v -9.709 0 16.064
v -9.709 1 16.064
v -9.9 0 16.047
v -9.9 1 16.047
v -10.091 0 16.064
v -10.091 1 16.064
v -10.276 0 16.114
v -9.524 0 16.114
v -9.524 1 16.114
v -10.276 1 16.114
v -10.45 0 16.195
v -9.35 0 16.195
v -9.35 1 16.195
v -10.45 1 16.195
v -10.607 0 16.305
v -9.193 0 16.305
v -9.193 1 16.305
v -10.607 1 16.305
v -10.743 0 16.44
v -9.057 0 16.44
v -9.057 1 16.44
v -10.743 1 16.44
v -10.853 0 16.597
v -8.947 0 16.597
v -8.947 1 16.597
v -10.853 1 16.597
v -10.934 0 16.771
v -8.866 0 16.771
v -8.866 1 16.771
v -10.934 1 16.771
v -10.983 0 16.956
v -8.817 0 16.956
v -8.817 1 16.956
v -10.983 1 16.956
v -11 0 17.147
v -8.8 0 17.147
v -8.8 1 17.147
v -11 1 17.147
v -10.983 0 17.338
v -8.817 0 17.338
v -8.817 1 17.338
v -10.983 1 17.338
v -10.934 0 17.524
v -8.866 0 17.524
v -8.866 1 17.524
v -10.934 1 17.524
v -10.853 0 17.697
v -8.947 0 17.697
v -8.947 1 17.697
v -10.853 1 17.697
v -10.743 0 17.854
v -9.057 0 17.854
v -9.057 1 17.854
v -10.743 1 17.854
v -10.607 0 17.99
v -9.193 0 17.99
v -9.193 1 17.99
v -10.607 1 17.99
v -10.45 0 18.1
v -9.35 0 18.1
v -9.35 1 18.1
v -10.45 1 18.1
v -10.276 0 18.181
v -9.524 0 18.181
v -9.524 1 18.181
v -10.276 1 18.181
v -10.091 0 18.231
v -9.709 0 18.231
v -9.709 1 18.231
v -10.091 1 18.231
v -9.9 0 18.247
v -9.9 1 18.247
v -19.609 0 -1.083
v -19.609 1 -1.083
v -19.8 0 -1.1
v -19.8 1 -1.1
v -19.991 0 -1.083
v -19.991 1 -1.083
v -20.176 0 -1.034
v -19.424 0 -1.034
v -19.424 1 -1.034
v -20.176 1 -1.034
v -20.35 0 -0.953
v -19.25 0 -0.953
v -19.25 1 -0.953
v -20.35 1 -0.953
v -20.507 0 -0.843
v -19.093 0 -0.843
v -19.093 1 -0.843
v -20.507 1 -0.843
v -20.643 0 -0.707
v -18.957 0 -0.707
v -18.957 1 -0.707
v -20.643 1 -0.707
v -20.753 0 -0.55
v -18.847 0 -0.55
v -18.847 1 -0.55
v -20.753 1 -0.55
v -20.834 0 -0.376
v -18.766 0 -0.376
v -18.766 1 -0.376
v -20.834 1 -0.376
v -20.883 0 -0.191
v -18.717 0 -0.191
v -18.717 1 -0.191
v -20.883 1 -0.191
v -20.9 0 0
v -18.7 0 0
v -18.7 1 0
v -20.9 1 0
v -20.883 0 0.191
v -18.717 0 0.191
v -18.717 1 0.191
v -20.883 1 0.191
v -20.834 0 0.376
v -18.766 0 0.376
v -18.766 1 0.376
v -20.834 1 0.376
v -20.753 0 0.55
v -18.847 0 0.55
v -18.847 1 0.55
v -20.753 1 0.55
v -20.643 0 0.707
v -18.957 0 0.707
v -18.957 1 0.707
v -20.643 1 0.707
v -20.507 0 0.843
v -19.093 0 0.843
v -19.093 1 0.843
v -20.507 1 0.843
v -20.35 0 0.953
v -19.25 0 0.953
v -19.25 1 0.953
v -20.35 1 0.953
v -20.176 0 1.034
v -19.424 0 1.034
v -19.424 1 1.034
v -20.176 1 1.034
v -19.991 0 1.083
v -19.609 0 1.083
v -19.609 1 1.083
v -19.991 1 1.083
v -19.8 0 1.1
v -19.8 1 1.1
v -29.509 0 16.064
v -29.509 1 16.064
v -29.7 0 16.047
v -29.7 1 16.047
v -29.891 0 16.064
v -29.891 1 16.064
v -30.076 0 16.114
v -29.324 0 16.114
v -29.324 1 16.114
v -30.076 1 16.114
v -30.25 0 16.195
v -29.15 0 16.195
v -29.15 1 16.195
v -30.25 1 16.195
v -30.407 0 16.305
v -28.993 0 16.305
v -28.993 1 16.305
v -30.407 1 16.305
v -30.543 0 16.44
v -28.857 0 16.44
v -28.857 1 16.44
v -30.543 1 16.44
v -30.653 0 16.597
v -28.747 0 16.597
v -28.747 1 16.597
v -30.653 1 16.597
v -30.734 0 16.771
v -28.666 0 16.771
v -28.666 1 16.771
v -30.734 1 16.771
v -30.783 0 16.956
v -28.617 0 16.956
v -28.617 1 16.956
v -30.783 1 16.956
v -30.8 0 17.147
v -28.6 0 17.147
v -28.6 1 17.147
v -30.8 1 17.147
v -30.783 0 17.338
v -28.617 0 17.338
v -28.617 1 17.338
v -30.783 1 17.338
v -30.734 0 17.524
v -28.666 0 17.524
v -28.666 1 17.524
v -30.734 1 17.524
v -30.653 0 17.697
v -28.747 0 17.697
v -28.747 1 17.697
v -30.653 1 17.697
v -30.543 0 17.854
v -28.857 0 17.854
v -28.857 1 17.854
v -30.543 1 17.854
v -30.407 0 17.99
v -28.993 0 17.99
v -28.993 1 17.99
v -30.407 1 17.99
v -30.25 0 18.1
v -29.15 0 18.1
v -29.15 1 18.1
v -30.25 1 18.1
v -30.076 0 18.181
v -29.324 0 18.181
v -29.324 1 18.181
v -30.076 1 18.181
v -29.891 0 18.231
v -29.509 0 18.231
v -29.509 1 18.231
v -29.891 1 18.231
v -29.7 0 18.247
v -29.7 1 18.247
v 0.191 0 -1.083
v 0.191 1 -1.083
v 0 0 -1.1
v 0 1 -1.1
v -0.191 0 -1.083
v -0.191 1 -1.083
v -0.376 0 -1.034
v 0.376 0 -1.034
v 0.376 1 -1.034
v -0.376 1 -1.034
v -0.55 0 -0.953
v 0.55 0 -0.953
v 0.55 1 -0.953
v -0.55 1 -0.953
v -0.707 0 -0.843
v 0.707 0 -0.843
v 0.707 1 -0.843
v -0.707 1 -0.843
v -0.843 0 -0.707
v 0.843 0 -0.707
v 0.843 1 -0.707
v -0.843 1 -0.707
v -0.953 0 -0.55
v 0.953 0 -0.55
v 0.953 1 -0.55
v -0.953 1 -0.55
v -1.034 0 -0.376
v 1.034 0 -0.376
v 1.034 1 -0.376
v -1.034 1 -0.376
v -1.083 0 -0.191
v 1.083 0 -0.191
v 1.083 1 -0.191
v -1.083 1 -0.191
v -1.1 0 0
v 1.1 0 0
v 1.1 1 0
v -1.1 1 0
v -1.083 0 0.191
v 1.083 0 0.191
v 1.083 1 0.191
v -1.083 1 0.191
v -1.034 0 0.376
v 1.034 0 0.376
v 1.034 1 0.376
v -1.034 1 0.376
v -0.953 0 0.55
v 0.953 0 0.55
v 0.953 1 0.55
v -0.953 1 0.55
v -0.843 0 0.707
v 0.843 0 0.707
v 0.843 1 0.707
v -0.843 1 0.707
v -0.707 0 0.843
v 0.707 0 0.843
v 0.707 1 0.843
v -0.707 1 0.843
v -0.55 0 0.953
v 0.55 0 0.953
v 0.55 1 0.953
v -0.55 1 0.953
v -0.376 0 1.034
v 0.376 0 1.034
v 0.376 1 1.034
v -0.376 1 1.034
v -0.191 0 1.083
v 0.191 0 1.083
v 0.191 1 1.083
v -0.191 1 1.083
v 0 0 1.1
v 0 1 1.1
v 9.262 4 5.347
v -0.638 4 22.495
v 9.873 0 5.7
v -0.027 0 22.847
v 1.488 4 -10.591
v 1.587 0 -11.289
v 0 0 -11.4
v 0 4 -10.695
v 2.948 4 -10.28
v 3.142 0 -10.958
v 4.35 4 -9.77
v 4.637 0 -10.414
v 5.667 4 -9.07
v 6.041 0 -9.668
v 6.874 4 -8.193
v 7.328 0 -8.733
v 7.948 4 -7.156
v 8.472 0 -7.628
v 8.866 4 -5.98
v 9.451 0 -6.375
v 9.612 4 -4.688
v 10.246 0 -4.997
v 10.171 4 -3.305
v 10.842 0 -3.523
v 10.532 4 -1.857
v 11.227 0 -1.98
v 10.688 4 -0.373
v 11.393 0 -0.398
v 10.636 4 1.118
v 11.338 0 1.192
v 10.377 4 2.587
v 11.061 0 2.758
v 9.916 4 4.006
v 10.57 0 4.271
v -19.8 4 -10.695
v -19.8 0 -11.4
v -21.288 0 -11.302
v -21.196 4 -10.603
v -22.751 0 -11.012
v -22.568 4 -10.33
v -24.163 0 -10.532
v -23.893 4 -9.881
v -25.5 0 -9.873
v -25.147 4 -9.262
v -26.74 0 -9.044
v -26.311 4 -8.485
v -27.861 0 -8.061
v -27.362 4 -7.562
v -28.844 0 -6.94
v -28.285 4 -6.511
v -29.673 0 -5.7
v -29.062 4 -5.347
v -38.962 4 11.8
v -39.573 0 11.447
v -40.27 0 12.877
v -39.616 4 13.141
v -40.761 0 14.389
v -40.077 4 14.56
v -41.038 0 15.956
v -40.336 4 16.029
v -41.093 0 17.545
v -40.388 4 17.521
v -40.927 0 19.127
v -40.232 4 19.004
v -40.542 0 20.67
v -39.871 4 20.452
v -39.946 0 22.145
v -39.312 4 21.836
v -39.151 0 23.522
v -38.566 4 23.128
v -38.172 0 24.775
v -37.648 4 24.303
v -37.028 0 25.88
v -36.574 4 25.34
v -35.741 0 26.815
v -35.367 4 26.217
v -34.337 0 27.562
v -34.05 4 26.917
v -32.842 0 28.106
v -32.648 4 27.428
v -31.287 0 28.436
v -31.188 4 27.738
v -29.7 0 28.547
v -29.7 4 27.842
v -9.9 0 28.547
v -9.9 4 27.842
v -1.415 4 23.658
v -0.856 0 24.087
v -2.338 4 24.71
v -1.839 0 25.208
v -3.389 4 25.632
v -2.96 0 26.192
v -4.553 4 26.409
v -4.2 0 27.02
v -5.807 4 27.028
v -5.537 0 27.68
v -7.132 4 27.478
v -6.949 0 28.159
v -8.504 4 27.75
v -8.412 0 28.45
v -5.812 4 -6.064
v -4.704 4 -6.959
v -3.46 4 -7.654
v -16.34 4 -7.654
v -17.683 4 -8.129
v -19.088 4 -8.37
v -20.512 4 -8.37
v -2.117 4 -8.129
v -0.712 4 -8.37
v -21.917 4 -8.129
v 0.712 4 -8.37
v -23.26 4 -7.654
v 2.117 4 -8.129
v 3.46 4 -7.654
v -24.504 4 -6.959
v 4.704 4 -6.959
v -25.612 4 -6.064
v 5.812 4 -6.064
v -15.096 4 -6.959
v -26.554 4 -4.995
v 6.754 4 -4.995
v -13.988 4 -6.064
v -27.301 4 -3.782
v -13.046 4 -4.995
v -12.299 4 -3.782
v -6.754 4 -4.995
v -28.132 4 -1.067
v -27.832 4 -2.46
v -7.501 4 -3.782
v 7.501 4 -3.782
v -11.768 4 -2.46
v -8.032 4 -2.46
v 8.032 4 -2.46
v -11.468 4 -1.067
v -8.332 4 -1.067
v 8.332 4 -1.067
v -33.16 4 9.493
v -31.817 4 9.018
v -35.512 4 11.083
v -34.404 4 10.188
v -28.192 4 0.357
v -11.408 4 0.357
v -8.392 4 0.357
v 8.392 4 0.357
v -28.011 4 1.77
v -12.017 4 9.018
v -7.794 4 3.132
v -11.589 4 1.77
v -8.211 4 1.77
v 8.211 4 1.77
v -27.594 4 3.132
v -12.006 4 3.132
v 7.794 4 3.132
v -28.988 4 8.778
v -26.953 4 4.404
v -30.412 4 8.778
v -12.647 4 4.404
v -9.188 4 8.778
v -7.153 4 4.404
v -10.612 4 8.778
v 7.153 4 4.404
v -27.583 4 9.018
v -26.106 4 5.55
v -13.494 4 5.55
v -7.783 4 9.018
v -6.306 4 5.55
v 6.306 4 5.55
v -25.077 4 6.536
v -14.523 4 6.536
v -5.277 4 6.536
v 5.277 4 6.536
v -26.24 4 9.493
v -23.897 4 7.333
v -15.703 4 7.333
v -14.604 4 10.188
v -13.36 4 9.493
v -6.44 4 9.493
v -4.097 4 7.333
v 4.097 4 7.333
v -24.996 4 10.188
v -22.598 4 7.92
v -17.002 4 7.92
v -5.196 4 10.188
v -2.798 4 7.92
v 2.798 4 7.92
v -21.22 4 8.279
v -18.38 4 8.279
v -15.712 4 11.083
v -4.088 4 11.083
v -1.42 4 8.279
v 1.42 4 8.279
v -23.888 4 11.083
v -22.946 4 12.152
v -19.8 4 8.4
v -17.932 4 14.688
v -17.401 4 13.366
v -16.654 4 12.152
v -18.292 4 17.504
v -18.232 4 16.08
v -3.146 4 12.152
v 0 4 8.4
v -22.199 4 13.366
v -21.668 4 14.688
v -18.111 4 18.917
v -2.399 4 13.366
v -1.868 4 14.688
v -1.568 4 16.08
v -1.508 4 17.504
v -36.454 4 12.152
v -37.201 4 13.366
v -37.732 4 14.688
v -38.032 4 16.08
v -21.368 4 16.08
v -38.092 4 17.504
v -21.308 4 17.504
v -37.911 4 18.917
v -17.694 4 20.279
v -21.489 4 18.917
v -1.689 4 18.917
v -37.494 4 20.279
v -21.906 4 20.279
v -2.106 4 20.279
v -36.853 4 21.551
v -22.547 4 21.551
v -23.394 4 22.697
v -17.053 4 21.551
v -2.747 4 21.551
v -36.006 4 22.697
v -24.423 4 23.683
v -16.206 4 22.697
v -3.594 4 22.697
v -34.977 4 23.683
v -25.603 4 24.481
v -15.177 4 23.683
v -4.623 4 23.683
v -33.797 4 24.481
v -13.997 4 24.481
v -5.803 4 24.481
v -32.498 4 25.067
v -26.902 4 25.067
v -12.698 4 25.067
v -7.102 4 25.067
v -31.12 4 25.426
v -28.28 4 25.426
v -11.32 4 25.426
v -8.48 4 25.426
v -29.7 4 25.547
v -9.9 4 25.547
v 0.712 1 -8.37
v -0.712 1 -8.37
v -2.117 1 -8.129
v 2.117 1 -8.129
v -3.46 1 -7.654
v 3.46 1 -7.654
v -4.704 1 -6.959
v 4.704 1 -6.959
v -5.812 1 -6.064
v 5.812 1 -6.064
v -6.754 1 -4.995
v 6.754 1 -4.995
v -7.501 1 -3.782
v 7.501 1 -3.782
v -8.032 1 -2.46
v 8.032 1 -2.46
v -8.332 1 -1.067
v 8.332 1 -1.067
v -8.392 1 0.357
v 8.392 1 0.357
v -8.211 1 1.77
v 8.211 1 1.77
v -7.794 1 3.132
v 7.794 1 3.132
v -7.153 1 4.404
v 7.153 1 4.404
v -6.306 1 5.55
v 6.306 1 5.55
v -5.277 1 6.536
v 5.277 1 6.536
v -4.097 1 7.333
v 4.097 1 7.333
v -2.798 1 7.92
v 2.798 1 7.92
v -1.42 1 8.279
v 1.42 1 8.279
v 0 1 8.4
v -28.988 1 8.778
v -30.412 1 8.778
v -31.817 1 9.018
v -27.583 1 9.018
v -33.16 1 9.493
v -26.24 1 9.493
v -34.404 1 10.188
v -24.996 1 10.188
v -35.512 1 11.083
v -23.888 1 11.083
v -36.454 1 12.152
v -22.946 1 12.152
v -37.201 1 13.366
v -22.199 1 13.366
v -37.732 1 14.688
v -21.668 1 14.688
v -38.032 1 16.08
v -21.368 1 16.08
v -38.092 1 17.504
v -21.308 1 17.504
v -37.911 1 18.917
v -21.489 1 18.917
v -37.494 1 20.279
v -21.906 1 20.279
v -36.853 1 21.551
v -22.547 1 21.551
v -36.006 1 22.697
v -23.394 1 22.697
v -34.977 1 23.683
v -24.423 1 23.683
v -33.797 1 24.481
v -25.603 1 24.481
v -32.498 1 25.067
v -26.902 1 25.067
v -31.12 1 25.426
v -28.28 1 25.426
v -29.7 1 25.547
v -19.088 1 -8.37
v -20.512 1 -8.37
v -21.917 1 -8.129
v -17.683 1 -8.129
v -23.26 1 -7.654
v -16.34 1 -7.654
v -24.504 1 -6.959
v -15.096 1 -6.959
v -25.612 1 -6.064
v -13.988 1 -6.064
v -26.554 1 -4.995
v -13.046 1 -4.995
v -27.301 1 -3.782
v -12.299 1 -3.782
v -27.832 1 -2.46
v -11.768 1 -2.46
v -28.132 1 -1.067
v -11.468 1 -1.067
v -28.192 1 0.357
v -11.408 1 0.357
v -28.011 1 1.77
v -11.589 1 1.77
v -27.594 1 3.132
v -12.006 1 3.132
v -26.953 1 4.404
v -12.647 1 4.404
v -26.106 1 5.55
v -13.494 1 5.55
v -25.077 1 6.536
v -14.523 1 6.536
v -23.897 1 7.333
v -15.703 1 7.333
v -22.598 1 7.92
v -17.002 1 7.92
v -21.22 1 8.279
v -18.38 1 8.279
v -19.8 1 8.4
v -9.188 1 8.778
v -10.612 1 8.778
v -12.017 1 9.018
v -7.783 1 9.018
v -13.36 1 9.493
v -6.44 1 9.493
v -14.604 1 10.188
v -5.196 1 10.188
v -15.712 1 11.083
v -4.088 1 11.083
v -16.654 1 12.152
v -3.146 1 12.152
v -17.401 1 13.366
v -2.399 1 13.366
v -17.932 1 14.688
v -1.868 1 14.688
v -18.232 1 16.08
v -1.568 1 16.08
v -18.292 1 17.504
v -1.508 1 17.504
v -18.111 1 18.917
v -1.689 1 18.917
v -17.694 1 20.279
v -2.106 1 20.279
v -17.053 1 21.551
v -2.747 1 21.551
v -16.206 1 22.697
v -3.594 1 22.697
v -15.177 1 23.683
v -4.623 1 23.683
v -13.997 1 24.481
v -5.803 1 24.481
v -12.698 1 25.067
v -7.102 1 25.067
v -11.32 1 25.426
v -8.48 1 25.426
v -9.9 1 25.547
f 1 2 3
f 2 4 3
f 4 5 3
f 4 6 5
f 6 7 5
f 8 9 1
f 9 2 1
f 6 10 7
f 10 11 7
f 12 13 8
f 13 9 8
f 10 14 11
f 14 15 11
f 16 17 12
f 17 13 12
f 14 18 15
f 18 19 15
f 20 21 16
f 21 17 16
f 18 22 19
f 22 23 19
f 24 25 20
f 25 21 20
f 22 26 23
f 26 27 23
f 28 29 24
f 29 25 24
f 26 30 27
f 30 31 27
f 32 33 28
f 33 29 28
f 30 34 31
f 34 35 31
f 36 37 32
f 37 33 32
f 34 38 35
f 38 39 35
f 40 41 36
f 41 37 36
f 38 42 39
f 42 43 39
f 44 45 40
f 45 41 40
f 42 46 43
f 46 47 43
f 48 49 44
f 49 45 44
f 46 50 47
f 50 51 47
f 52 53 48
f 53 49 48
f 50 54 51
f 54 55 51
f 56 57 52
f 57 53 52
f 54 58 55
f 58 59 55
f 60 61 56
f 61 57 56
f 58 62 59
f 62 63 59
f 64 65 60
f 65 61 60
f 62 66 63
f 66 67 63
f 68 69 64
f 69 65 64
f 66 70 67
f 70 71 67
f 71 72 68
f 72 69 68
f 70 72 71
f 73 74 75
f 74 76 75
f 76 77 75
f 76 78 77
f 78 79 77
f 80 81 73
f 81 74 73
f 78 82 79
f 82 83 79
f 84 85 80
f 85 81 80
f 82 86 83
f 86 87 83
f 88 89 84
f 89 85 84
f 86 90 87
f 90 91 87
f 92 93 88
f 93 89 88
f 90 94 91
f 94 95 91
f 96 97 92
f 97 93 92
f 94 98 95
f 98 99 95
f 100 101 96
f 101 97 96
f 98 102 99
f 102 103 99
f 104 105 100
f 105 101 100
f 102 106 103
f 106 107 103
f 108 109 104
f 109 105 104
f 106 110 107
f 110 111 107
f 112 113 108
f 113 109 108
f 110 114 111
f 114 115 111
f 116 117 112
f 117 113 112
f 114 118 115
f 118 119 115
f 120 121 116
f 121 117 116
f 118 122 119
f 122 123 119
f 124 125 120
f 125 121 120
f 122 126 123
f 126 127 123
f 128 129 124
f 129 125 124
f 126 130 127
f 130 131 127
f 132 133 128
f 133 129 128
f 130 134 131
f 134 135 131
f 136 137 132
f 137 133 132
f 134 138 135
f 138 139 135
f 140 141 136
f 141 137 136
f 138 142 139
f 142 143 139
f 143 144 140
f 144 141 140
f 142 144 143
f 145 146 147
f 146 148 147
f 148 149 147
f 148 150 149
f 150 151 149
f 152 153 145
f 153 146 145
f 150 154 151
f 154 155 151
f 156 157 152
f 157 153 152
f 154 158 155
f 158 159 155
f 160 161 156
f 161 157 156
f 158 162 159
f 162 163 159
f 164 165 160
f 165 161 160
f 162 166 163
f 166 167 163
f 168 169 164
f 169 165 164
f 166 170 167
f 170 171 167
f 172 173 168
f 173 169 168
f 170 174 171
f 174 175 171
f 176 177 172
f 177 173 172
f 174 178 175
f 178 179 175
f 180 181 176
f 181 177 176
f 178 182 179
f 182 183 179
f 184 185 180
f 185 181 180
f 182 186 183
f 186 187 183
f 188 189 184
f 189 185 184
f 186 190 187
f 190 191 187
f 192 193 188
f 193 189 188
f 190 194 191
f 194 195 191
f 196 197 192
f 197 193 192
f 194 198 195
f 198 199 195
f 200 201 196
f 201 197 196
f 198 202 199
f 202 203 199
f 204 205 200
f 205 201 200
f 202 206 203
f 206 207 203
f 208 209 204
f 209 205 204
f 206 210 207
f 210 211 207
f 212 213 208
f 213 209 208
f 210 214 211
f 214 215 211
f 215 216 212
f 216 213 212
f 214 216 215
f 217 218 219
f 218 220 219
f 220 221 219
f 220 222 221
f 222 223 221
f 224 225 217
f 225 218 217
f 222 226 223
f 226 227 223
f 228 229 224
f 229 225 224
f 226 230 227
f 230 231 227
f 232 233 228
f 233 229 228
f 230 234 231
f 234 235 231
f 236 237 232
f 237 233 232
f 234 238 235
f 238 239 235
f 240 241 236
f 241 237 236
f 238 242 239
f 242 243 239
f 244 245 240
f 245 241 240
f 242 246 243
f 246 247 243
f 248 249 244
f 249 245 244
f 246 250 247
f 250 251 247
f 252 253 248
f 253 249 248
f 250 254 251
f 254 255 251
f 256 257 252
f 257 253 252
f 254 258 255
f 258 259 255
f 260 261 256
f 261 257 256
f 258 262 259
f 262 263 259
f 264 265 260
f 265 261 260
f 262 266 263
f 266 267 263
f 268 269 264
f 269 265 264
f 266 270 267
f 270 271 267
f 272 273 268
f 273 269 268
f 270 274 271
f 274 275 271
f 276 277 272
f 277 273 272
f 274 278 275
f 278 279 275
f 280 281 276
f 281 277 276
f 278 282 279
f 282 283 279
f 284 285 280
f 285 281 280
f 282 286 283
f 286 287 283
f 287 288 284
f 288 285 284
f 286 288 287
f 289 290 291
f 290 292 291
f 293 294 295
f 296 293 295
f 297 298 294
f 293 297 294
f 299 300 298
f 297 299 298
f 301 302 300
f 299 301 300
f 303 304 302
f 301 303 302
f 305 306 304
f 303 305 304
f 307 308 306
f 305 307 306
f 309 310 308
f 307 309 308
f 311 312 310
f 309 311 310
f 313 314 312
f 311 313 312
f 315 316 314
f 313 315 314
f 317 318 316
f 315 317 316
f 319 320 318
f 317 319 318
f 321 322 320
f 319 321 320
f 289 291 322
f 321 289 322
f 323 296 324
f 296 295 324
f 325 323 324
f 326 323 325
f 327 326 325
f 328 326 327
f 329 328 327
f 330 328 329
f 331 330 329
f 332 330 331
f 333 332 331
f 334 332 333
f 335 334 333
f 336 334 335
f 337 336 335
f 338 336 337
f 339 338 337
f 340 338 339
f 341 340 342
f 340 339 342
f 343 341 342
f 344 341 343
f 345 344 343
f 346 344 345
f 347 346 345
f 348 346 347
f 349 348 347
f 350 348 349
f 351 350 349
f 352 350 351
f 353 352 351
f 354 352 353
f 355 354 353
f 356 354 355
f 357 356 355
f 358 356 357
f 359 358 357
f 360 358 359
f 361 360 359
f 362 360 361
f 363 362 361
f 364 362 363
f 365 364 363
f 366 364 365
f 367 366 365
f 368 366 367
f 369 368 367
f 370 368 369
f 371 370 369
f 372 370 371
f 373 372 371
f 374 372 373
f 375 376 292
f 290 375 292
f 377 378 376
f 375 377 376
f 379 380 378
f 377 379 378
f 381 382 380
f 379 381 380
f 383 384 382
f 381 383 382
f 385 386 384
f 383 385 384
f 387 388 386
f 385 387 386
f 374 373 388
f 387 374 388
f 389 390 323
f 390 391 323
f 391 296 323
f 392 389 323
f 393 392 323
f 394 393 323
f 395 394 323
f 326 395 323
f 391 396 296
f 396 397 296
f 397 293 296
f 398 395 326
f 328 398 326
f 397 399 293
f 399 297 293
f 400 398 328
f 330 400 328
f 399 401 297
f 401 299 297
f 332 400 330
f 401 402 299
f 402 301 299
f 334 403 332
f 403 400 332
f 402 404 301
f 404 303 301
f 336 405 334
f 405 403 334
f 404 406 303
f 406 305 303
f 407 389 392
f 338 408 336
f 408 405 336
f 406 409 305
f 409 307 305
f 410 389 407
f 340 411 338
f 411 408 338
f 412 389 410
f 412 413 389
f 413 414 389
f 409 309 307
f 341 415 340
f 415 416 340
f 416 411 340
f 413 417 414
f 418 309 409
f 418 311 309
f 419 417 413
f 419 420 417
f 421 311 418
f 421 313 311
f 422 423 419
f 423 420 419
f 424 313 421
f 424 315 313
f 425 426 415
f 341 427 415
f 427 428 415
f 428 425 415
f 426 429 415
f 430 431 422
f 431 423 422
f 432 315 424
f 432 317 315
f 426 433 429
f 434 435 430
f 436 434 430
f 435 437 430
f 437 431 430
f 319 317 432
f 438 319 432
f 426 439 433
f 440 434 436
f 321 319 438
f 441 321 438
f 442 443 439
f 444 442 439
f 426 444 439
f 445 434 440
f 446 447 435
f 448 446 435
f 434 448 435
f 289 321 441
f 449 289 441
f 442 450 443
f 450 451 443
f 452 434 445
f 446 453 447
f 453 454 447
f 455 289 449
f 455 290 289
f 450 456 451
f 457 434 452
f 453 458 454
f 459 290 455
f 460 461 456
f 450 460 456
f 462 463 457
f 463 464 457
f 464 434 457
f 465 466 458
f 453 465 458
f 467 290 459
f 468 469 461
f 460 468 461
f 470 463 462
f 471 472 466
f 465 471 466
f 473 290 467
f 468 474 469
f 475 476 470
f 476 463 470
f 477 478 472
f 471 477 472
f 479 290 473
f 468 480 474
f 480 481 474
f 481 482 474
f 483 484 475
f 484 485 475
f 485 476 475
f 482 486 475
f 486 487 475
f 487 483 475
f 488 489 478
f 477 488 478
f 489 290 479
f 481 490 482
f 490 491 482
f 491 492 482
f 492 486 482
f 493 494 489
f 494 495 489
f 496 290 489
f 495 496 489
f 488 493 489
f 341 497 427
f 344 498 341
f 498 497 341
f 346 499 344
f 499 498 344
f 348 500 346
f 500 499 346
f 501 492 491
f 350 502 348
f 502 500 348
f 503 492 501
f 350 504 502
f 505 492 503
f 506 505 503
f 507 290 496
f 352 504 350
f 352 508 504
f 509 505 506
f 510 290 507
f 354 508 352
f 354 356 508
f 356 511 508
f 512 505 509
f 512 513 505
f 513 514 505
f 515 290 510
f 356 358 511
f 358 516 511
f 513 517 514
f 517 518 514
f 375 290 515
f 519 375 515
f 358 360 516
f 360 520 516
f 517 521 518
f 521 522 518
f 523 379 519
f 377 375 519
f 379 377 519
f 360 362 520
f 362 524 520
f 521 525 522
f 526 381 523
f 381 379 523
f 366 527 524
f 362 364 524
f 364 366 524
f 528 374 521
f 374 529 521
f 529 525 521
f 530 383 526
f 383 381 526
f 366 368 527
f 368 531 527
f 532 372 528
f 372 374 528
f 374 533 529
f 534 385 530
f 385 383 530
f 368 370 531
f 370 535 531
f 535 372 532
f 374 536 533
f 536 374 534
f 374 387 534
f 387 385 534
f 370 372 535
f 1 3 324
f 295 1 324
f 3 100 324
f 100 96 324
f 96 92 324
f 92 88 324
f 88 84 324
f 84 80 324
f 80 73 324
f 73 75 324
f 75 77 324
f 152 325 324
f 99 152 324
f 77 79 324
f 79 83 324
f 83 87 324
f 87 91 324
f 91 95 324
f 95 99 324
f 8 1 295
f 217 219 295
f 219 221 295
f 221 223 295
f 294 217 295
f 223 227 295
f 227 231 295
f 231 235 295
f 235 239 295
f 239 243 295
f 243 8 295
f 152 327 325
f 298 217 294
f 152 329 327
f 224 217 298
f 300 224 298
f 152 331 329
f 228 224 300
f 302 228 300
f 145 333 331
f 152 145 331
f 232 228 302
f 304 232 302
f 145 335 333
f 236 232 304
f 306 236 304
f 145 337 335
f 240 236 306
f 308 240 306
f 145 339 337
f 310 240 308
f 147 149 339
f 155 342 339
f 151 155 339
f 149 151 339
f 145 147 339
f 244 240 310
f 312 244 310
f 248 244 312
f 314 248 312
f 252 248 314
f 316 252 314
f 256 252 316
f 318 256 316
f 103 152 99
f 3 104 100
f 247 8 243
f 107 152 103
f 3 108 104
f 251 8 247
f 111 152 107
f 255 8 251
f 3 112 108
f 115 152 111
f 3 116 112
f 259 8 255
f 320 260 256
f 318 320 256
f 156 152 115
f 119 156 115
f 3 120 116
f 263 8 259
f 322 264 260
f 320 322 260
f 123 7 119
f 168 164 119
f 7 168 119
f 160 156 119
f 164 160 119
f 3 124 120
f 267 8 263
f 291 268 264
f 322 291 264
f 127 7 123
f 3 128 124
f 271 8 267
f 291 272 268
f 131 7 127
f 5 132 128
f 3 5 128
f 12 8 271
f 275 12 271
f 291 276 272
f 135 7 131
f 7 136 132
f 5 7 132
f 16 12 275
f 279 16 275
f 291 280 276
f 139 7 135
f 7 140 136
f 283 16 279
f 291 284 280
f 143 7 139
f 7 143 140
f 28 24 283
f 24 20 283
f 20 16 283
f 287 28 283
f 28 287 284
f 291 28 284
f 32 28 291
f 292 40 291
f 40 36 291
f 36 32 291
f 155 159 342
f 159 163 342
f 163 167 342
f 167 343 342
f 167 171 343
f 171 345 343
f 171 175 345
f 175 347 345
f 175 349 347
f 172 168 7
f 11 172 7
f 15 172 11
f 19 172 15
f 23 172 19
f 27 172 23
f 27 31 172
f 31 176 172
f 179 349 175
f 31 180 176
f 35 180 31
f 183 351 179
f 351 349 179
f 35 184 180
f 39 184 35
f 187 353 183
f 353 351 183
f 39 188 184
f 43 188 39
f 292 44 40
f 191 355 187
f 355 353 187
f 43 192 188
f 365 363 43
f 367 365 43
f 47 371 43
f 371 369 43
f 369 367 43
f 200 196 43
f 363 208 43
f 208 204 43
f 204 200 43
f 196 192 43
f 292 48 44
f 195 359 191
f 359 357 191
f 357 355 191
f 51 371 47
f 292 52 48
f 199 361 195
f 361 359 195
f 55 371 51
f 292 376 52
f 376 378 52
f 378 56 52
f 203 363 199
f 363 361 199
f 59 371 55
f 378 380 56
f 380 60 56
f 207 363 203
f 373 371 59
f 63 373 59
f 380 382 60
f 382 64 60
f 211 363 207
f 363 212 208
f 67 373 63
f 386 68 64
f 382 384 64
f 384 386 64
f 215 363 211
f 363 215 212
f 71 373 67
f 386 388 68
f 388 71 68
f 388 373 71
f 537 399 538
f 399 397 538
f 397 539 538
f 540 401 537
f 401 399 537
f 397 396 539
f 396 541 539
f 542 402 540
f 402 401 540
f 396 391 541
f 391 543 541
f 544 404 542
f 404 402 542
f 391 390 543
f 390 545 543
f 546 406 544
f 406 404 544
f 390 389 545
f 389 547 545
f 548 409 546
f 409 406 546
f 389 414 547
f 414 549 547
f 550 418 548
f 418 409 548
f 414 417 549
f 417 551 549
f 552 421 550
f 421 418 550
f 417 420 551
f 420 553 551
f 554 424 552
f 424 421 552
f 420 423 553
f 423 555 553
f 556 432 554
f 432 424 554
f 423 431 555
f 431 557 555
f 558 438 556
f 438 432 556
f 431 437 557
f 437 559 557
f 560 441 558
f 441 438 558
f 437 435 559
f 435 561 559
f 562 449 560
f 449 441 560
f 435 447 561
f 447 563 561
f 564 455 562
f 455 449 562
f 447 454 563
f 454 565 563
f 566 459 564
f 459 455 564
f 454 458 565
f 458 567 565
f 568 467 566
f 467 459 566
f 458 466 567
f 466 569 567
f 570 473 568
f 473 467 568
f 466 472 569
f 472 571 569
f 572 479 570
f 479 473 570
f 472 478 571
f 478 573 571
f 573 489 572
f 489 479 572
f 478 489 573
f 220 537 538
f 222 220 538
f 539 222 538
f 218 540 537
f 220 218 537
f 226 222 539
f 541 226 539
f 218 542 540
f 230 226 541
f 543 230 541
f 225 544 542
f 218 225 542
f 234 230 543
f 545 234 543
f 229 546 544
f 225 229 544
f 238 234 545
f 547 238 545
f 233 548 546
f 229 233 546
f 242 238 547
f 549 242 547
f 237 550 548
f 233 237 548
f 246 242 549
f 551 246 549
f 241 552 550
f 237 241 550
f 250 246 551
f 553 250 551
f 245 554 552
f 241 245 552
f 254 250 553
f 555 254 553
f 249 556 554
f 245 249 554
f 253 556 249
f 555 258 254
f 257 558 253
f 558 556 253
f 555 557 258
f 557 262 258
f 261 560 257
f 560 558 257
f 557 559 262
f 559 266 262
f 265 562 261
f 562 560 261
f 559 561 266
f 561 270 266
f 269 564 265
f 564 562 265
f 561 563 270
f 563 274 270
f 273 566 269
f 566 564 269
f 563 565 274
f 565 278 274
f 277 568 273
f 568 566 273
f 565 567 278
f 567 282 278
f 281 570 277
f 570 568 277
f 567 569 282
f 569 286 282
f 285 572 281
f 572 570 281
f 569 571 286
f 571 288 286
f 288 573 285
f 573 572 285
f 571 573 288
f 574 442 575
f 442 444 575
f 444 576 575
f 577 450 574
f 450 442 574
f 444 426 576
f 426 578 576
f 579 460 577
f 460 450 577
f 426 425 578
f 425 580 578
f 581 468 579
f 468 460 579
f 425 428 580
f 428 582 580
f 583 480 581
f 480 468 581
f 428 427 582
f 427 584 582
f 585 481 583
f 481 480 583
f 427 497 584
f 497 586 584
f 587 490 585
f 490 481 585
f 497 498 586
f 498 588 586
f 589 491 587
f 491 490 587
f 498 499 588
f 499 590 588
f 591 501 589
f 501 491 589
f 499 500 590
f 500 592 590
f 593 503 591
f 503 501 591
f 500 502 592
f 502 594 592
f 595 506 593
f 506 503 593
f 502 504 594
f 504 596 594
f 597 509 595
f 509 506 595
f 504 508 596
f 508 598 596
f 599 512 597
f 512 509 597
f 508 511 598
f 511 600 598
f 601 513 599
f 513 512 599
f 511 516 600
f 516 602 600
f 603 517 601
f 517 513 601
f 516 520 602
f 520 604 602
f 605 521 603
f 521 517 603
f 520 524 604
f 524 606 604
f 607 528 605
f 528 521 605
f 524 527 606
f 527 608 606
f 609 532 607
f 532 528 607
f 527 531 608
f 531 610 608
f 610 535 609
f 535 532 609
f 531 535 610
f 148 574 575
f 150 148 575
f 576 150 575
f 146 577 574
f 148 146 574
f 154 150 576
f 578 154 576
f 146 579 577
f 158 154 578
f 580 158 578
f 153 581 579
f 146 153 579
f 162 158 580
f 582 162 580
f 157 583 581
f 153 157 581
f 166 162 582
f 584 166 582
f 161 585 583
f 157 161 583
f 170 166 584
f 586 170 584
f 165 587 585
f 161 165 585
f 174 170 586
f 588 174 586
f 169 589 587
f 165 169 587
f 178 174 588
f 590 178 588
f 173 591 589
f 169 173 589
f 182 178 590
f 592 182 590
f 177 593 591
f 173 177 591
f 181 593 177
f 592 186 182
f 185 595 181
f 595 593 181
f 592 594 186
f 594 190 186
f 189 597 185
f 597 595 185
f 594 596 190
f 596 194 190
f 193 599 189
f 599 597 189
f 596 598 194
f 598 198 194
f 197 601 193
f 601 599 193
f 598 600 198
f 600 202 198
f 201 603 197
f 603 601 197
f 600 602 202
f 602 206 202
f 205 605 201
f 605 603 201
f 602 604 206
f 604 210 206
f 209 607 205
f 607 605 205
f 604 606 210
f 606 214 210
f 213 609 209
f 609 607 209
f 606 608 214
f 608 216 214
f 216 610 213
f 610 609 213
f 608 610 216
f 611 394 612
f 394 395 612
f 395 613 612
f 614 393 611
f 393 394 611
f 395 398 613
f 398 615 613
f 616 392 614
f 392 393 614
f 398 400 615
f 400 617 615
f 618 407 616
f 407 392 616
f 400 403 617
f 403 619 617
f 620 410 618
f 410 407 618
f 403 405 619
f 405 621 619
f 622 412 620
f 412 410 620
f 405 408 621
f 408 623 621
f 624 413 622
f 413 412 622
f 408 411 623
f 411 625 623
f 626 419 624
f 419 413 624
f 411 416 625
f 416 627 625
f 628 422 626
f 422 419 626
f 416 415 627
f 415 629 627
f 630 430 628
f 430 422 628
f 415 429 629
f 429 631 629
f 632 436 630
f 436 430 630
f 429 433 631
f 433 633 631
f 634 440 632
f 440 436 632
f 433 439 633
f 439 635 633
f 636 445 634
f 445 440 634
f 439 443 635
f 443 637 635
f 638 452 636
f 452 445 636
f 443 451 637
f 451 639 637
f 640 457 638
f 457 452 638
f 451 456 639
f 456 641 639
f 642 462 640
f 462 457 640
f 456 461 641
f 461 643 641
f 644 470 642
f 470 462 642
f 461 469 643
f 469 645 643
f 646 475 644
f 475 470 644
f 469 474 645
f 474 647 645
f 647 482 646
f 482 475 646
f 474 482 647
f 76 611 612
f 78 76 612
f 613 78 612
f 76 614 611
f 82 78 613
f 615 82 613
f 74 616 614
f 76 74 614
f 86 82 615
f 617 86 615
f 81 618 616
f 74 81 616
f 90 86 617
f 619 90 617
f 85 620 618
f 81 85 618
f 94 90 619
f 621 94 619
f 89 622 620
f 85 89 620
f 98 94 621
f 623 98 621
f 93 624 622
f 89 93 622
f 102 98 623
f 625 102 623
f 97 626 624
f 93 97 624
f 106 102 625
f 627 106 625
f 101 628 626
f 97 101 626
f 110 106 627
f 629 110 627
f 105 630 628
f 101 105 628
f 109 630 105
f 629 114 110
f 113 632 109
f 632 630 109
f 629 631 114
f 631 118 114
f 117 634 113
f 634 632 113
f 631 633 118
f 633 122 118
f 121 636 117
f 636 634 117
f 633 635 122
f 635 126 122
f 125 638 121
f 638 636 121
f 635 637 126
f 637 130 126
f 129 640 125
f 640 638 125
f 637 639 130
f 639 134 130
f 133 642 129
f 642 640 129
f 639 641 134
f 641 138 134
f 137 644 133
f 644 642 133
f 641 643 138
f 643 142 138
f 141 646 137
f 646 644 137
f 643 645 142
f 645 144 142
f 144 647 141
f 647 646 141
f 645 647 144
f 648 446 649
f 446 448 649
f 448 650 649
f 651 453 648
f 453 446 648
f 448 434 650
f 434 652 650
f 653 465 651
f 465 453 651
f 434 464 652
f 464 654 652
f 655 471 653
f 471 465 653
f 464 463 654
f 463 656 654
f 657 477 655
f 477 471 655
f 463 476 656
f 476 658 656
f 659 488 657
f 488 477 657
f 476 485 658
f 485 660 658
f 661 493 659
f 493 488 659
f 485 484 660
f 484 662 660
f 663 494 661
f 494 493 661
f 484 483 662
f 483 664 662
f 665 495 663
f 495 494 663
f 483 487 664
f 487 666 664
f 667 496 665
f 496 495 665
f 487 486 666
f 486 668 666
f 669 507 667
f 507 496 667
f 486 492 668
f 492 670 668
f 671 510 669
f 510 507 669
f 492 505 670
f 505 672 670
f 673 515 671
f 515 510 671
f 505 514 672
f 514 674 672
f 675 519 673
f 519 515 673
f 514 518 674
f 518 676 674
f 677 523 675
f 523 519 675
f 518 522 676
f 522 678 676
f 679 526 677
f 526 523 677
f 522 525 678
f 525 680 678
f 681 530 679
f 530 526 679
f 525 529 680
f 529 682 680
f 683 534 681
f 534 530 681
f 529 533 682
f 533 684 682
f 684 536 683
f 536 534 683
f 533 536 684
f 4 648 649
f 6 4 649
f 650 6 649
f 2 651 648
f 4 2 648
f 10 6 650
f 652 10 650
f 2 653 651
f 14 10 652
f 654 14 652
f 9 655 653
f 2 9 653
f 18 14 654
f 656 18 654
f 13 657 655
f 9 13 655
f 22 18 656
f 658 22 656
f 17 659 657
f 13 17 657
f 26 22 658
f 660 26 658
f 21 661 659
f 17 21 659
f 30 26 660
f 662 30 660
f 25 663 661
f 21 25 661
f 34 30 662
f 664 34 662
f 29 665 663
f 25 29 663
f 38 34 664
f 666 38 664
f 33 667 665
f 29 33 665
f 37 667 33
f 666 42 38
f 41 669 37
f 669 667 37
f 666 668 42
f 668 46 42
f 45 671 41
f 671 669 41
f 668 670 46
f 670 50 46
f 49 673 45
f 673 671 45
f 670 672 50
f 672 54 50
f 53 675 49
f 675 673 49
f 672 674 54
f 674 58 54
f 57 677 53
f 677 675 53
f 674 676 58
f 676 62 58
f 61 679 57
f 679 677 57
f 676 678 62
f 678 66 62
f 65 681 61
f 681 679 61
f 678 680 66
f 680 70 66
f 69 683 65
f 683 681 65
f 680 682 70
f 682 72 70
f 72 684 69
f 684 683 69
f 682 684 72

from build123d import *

# Parameters (mm, degrees)
BOSS_EXTRUDE1_DEPTH = 4
BOSS_EXTRUDE1_TAPER = 10
CUT_EXTRUDE1_START  = 4
SKETCH1_3_R         = 1.1
CUT_EXTRUDE1_DEPTH  = 4
CUT_EXTRUDE2_START  = 4
SKETCH1_4_R         = 8.4
SKETCH1_4_R_2       = 1.1
CUT_EXTRUDE2_DEPTH  = 3


with BuildPart() as part:
    # Sketch1 → Boss-Extrude1 (new body)
    with BuildSketch(Plane(origin=(0, 0, 0), x_dir=(1, 0, 0), z_dir=(0, 1, 0))):
        with BuildLine():
            ThreePointArc((-19.8, 11.4), (-25.5, 9.872689603), (-29.672689603, 5.7))
            Line((-29.672689603, 5.7), (-39.572689603, -11.447302995))
            ThreePointArc((-39.572689603, -11.447302995), (-39.572689603, -22.847302995), (-29.7, -28.547302995))
            Line((-29.7, -28.547302995), (-9.9, -28.547302995))
            ThreePointArc((-9.9, -28.547302995), (-4.2, -27.019992598), (-0.027310397, -22.847302995))
            Line((-0.027310397, -22.847302995), (9.872689603, -5.7))
            ThreePointArc((9.872689603, -5.7), (9.872689603, 5.7), (0, 11.4))
            Line((0, 11.4), (-19.8, 11.4))
        make_face()
    extrude(amount=BOSS_EXTRUDE1_DEPTH, taper=BOSS_EXTRUDE1_TAPER)

    # Sketch1<3> → Cut-Extrude1 (cut)
    with BuildSketch(Plane(origin=(0, 0, 0), x_dir=(1, 0, 0), z_dir=(0, 1, 0)).offset(CUT_EXTRUDE1_START)):
        with Locations(Location((-9.9, -17.147302995, 0), (0, 0, 270))):
            Circle(SKETCH1_3_R)
        with Locations(Location((0, 0, 0), (0, 0, 270))):
            Circle(SKETCH1_3_R)
        with Locations(Location((-29.7, -17.147302995, 0), (0, 0, 270))):
            Circle(SKETCH1_3_R)
        with Locations(Location((-19.8, 0, 0), (0, 0, 270))):
            Circle(SKETCH1_3_R)
    extrude(amount=-CUT_EXTRUDE1_DEPTH, mode=Mode.SUBTRACT)

    # Sketch1<4> → Cut-Extrude2 (cut)
    # profile 1 of 4: a face of its own
    with BuildSketch(Plane(origin=(0, 0, 0), x_dir=(1, 0, 0), z_dir=(0, 1, 0)).offset(CUT_EXTRUDE2_START)):
        with Locations(Location((-19.8, 0, 0), (0, 0, 270))):
            Circle(SKETCH1_4_R)
        with Locations(Location((-19.8, 0, 0), (0, 0, 270))):
            Circle(SKETCH1_4_R_2, mode=Mode.SUBTRACT)
    # profile 2 of 4: a face of its own
    with BuildSketch(Plane(origin=(0, 0, 0), x_dir=(1, 0, 0), z_dir=(0, 1, 0)).offset(CUT_EXTRUDE2_START)):
        with Locations(Location((-9.9, -17.147302995, 0), (0, 0, 270))):
            Circle(SKETCH1_4_R)
        with Locations(Location((-9.9, -17.147302995, 0), (0, 0, 270))):
            Circle(SKETCH1_4_R_2, mode=Mode.SUBTRACT)
    # profile 3 of 4: a face of its own
    with BuildSketch(Plane(origin=(0, 0, 0), x_dir=(1, 0, 0), z_dir=(0, 1, 0)).offset(CUT_EXTRUDE2_START)):
        with Locations(Location((0, 0, 0), (0, 0, 270))):
            Circle(SKETCH1_4_R)
        with Locations(Location((0, 0, 0), (0, 0, 270))):
            Circle(SKETCH1_4_R_2, mode=Mode.SUBTRACT)
    # profile 4 of 4: a face of its own
    with BuildSketch(Plane(origin=(0, 0, 0), x_dir=(1, 0, 0), z_dir=(0, 1, 0)).offset(CUT_EXTRUDE2_START)):
        with Locations(Location((-29.7, -17.147302995, 0), (0, 0, 270))):
            Circle(SKETCH1_4_R)
        with Locations(Location((-29.7, -17.147302995, 0), (0, 0, 270))):
            Circle(SKETCH1_4_R_2, mode=Mode.SUBTRACT)
    extrude(amount=-CUT_EXTRUDE2_DEPTH, mode=Mode.SUBTRACT)


solid = part.part
